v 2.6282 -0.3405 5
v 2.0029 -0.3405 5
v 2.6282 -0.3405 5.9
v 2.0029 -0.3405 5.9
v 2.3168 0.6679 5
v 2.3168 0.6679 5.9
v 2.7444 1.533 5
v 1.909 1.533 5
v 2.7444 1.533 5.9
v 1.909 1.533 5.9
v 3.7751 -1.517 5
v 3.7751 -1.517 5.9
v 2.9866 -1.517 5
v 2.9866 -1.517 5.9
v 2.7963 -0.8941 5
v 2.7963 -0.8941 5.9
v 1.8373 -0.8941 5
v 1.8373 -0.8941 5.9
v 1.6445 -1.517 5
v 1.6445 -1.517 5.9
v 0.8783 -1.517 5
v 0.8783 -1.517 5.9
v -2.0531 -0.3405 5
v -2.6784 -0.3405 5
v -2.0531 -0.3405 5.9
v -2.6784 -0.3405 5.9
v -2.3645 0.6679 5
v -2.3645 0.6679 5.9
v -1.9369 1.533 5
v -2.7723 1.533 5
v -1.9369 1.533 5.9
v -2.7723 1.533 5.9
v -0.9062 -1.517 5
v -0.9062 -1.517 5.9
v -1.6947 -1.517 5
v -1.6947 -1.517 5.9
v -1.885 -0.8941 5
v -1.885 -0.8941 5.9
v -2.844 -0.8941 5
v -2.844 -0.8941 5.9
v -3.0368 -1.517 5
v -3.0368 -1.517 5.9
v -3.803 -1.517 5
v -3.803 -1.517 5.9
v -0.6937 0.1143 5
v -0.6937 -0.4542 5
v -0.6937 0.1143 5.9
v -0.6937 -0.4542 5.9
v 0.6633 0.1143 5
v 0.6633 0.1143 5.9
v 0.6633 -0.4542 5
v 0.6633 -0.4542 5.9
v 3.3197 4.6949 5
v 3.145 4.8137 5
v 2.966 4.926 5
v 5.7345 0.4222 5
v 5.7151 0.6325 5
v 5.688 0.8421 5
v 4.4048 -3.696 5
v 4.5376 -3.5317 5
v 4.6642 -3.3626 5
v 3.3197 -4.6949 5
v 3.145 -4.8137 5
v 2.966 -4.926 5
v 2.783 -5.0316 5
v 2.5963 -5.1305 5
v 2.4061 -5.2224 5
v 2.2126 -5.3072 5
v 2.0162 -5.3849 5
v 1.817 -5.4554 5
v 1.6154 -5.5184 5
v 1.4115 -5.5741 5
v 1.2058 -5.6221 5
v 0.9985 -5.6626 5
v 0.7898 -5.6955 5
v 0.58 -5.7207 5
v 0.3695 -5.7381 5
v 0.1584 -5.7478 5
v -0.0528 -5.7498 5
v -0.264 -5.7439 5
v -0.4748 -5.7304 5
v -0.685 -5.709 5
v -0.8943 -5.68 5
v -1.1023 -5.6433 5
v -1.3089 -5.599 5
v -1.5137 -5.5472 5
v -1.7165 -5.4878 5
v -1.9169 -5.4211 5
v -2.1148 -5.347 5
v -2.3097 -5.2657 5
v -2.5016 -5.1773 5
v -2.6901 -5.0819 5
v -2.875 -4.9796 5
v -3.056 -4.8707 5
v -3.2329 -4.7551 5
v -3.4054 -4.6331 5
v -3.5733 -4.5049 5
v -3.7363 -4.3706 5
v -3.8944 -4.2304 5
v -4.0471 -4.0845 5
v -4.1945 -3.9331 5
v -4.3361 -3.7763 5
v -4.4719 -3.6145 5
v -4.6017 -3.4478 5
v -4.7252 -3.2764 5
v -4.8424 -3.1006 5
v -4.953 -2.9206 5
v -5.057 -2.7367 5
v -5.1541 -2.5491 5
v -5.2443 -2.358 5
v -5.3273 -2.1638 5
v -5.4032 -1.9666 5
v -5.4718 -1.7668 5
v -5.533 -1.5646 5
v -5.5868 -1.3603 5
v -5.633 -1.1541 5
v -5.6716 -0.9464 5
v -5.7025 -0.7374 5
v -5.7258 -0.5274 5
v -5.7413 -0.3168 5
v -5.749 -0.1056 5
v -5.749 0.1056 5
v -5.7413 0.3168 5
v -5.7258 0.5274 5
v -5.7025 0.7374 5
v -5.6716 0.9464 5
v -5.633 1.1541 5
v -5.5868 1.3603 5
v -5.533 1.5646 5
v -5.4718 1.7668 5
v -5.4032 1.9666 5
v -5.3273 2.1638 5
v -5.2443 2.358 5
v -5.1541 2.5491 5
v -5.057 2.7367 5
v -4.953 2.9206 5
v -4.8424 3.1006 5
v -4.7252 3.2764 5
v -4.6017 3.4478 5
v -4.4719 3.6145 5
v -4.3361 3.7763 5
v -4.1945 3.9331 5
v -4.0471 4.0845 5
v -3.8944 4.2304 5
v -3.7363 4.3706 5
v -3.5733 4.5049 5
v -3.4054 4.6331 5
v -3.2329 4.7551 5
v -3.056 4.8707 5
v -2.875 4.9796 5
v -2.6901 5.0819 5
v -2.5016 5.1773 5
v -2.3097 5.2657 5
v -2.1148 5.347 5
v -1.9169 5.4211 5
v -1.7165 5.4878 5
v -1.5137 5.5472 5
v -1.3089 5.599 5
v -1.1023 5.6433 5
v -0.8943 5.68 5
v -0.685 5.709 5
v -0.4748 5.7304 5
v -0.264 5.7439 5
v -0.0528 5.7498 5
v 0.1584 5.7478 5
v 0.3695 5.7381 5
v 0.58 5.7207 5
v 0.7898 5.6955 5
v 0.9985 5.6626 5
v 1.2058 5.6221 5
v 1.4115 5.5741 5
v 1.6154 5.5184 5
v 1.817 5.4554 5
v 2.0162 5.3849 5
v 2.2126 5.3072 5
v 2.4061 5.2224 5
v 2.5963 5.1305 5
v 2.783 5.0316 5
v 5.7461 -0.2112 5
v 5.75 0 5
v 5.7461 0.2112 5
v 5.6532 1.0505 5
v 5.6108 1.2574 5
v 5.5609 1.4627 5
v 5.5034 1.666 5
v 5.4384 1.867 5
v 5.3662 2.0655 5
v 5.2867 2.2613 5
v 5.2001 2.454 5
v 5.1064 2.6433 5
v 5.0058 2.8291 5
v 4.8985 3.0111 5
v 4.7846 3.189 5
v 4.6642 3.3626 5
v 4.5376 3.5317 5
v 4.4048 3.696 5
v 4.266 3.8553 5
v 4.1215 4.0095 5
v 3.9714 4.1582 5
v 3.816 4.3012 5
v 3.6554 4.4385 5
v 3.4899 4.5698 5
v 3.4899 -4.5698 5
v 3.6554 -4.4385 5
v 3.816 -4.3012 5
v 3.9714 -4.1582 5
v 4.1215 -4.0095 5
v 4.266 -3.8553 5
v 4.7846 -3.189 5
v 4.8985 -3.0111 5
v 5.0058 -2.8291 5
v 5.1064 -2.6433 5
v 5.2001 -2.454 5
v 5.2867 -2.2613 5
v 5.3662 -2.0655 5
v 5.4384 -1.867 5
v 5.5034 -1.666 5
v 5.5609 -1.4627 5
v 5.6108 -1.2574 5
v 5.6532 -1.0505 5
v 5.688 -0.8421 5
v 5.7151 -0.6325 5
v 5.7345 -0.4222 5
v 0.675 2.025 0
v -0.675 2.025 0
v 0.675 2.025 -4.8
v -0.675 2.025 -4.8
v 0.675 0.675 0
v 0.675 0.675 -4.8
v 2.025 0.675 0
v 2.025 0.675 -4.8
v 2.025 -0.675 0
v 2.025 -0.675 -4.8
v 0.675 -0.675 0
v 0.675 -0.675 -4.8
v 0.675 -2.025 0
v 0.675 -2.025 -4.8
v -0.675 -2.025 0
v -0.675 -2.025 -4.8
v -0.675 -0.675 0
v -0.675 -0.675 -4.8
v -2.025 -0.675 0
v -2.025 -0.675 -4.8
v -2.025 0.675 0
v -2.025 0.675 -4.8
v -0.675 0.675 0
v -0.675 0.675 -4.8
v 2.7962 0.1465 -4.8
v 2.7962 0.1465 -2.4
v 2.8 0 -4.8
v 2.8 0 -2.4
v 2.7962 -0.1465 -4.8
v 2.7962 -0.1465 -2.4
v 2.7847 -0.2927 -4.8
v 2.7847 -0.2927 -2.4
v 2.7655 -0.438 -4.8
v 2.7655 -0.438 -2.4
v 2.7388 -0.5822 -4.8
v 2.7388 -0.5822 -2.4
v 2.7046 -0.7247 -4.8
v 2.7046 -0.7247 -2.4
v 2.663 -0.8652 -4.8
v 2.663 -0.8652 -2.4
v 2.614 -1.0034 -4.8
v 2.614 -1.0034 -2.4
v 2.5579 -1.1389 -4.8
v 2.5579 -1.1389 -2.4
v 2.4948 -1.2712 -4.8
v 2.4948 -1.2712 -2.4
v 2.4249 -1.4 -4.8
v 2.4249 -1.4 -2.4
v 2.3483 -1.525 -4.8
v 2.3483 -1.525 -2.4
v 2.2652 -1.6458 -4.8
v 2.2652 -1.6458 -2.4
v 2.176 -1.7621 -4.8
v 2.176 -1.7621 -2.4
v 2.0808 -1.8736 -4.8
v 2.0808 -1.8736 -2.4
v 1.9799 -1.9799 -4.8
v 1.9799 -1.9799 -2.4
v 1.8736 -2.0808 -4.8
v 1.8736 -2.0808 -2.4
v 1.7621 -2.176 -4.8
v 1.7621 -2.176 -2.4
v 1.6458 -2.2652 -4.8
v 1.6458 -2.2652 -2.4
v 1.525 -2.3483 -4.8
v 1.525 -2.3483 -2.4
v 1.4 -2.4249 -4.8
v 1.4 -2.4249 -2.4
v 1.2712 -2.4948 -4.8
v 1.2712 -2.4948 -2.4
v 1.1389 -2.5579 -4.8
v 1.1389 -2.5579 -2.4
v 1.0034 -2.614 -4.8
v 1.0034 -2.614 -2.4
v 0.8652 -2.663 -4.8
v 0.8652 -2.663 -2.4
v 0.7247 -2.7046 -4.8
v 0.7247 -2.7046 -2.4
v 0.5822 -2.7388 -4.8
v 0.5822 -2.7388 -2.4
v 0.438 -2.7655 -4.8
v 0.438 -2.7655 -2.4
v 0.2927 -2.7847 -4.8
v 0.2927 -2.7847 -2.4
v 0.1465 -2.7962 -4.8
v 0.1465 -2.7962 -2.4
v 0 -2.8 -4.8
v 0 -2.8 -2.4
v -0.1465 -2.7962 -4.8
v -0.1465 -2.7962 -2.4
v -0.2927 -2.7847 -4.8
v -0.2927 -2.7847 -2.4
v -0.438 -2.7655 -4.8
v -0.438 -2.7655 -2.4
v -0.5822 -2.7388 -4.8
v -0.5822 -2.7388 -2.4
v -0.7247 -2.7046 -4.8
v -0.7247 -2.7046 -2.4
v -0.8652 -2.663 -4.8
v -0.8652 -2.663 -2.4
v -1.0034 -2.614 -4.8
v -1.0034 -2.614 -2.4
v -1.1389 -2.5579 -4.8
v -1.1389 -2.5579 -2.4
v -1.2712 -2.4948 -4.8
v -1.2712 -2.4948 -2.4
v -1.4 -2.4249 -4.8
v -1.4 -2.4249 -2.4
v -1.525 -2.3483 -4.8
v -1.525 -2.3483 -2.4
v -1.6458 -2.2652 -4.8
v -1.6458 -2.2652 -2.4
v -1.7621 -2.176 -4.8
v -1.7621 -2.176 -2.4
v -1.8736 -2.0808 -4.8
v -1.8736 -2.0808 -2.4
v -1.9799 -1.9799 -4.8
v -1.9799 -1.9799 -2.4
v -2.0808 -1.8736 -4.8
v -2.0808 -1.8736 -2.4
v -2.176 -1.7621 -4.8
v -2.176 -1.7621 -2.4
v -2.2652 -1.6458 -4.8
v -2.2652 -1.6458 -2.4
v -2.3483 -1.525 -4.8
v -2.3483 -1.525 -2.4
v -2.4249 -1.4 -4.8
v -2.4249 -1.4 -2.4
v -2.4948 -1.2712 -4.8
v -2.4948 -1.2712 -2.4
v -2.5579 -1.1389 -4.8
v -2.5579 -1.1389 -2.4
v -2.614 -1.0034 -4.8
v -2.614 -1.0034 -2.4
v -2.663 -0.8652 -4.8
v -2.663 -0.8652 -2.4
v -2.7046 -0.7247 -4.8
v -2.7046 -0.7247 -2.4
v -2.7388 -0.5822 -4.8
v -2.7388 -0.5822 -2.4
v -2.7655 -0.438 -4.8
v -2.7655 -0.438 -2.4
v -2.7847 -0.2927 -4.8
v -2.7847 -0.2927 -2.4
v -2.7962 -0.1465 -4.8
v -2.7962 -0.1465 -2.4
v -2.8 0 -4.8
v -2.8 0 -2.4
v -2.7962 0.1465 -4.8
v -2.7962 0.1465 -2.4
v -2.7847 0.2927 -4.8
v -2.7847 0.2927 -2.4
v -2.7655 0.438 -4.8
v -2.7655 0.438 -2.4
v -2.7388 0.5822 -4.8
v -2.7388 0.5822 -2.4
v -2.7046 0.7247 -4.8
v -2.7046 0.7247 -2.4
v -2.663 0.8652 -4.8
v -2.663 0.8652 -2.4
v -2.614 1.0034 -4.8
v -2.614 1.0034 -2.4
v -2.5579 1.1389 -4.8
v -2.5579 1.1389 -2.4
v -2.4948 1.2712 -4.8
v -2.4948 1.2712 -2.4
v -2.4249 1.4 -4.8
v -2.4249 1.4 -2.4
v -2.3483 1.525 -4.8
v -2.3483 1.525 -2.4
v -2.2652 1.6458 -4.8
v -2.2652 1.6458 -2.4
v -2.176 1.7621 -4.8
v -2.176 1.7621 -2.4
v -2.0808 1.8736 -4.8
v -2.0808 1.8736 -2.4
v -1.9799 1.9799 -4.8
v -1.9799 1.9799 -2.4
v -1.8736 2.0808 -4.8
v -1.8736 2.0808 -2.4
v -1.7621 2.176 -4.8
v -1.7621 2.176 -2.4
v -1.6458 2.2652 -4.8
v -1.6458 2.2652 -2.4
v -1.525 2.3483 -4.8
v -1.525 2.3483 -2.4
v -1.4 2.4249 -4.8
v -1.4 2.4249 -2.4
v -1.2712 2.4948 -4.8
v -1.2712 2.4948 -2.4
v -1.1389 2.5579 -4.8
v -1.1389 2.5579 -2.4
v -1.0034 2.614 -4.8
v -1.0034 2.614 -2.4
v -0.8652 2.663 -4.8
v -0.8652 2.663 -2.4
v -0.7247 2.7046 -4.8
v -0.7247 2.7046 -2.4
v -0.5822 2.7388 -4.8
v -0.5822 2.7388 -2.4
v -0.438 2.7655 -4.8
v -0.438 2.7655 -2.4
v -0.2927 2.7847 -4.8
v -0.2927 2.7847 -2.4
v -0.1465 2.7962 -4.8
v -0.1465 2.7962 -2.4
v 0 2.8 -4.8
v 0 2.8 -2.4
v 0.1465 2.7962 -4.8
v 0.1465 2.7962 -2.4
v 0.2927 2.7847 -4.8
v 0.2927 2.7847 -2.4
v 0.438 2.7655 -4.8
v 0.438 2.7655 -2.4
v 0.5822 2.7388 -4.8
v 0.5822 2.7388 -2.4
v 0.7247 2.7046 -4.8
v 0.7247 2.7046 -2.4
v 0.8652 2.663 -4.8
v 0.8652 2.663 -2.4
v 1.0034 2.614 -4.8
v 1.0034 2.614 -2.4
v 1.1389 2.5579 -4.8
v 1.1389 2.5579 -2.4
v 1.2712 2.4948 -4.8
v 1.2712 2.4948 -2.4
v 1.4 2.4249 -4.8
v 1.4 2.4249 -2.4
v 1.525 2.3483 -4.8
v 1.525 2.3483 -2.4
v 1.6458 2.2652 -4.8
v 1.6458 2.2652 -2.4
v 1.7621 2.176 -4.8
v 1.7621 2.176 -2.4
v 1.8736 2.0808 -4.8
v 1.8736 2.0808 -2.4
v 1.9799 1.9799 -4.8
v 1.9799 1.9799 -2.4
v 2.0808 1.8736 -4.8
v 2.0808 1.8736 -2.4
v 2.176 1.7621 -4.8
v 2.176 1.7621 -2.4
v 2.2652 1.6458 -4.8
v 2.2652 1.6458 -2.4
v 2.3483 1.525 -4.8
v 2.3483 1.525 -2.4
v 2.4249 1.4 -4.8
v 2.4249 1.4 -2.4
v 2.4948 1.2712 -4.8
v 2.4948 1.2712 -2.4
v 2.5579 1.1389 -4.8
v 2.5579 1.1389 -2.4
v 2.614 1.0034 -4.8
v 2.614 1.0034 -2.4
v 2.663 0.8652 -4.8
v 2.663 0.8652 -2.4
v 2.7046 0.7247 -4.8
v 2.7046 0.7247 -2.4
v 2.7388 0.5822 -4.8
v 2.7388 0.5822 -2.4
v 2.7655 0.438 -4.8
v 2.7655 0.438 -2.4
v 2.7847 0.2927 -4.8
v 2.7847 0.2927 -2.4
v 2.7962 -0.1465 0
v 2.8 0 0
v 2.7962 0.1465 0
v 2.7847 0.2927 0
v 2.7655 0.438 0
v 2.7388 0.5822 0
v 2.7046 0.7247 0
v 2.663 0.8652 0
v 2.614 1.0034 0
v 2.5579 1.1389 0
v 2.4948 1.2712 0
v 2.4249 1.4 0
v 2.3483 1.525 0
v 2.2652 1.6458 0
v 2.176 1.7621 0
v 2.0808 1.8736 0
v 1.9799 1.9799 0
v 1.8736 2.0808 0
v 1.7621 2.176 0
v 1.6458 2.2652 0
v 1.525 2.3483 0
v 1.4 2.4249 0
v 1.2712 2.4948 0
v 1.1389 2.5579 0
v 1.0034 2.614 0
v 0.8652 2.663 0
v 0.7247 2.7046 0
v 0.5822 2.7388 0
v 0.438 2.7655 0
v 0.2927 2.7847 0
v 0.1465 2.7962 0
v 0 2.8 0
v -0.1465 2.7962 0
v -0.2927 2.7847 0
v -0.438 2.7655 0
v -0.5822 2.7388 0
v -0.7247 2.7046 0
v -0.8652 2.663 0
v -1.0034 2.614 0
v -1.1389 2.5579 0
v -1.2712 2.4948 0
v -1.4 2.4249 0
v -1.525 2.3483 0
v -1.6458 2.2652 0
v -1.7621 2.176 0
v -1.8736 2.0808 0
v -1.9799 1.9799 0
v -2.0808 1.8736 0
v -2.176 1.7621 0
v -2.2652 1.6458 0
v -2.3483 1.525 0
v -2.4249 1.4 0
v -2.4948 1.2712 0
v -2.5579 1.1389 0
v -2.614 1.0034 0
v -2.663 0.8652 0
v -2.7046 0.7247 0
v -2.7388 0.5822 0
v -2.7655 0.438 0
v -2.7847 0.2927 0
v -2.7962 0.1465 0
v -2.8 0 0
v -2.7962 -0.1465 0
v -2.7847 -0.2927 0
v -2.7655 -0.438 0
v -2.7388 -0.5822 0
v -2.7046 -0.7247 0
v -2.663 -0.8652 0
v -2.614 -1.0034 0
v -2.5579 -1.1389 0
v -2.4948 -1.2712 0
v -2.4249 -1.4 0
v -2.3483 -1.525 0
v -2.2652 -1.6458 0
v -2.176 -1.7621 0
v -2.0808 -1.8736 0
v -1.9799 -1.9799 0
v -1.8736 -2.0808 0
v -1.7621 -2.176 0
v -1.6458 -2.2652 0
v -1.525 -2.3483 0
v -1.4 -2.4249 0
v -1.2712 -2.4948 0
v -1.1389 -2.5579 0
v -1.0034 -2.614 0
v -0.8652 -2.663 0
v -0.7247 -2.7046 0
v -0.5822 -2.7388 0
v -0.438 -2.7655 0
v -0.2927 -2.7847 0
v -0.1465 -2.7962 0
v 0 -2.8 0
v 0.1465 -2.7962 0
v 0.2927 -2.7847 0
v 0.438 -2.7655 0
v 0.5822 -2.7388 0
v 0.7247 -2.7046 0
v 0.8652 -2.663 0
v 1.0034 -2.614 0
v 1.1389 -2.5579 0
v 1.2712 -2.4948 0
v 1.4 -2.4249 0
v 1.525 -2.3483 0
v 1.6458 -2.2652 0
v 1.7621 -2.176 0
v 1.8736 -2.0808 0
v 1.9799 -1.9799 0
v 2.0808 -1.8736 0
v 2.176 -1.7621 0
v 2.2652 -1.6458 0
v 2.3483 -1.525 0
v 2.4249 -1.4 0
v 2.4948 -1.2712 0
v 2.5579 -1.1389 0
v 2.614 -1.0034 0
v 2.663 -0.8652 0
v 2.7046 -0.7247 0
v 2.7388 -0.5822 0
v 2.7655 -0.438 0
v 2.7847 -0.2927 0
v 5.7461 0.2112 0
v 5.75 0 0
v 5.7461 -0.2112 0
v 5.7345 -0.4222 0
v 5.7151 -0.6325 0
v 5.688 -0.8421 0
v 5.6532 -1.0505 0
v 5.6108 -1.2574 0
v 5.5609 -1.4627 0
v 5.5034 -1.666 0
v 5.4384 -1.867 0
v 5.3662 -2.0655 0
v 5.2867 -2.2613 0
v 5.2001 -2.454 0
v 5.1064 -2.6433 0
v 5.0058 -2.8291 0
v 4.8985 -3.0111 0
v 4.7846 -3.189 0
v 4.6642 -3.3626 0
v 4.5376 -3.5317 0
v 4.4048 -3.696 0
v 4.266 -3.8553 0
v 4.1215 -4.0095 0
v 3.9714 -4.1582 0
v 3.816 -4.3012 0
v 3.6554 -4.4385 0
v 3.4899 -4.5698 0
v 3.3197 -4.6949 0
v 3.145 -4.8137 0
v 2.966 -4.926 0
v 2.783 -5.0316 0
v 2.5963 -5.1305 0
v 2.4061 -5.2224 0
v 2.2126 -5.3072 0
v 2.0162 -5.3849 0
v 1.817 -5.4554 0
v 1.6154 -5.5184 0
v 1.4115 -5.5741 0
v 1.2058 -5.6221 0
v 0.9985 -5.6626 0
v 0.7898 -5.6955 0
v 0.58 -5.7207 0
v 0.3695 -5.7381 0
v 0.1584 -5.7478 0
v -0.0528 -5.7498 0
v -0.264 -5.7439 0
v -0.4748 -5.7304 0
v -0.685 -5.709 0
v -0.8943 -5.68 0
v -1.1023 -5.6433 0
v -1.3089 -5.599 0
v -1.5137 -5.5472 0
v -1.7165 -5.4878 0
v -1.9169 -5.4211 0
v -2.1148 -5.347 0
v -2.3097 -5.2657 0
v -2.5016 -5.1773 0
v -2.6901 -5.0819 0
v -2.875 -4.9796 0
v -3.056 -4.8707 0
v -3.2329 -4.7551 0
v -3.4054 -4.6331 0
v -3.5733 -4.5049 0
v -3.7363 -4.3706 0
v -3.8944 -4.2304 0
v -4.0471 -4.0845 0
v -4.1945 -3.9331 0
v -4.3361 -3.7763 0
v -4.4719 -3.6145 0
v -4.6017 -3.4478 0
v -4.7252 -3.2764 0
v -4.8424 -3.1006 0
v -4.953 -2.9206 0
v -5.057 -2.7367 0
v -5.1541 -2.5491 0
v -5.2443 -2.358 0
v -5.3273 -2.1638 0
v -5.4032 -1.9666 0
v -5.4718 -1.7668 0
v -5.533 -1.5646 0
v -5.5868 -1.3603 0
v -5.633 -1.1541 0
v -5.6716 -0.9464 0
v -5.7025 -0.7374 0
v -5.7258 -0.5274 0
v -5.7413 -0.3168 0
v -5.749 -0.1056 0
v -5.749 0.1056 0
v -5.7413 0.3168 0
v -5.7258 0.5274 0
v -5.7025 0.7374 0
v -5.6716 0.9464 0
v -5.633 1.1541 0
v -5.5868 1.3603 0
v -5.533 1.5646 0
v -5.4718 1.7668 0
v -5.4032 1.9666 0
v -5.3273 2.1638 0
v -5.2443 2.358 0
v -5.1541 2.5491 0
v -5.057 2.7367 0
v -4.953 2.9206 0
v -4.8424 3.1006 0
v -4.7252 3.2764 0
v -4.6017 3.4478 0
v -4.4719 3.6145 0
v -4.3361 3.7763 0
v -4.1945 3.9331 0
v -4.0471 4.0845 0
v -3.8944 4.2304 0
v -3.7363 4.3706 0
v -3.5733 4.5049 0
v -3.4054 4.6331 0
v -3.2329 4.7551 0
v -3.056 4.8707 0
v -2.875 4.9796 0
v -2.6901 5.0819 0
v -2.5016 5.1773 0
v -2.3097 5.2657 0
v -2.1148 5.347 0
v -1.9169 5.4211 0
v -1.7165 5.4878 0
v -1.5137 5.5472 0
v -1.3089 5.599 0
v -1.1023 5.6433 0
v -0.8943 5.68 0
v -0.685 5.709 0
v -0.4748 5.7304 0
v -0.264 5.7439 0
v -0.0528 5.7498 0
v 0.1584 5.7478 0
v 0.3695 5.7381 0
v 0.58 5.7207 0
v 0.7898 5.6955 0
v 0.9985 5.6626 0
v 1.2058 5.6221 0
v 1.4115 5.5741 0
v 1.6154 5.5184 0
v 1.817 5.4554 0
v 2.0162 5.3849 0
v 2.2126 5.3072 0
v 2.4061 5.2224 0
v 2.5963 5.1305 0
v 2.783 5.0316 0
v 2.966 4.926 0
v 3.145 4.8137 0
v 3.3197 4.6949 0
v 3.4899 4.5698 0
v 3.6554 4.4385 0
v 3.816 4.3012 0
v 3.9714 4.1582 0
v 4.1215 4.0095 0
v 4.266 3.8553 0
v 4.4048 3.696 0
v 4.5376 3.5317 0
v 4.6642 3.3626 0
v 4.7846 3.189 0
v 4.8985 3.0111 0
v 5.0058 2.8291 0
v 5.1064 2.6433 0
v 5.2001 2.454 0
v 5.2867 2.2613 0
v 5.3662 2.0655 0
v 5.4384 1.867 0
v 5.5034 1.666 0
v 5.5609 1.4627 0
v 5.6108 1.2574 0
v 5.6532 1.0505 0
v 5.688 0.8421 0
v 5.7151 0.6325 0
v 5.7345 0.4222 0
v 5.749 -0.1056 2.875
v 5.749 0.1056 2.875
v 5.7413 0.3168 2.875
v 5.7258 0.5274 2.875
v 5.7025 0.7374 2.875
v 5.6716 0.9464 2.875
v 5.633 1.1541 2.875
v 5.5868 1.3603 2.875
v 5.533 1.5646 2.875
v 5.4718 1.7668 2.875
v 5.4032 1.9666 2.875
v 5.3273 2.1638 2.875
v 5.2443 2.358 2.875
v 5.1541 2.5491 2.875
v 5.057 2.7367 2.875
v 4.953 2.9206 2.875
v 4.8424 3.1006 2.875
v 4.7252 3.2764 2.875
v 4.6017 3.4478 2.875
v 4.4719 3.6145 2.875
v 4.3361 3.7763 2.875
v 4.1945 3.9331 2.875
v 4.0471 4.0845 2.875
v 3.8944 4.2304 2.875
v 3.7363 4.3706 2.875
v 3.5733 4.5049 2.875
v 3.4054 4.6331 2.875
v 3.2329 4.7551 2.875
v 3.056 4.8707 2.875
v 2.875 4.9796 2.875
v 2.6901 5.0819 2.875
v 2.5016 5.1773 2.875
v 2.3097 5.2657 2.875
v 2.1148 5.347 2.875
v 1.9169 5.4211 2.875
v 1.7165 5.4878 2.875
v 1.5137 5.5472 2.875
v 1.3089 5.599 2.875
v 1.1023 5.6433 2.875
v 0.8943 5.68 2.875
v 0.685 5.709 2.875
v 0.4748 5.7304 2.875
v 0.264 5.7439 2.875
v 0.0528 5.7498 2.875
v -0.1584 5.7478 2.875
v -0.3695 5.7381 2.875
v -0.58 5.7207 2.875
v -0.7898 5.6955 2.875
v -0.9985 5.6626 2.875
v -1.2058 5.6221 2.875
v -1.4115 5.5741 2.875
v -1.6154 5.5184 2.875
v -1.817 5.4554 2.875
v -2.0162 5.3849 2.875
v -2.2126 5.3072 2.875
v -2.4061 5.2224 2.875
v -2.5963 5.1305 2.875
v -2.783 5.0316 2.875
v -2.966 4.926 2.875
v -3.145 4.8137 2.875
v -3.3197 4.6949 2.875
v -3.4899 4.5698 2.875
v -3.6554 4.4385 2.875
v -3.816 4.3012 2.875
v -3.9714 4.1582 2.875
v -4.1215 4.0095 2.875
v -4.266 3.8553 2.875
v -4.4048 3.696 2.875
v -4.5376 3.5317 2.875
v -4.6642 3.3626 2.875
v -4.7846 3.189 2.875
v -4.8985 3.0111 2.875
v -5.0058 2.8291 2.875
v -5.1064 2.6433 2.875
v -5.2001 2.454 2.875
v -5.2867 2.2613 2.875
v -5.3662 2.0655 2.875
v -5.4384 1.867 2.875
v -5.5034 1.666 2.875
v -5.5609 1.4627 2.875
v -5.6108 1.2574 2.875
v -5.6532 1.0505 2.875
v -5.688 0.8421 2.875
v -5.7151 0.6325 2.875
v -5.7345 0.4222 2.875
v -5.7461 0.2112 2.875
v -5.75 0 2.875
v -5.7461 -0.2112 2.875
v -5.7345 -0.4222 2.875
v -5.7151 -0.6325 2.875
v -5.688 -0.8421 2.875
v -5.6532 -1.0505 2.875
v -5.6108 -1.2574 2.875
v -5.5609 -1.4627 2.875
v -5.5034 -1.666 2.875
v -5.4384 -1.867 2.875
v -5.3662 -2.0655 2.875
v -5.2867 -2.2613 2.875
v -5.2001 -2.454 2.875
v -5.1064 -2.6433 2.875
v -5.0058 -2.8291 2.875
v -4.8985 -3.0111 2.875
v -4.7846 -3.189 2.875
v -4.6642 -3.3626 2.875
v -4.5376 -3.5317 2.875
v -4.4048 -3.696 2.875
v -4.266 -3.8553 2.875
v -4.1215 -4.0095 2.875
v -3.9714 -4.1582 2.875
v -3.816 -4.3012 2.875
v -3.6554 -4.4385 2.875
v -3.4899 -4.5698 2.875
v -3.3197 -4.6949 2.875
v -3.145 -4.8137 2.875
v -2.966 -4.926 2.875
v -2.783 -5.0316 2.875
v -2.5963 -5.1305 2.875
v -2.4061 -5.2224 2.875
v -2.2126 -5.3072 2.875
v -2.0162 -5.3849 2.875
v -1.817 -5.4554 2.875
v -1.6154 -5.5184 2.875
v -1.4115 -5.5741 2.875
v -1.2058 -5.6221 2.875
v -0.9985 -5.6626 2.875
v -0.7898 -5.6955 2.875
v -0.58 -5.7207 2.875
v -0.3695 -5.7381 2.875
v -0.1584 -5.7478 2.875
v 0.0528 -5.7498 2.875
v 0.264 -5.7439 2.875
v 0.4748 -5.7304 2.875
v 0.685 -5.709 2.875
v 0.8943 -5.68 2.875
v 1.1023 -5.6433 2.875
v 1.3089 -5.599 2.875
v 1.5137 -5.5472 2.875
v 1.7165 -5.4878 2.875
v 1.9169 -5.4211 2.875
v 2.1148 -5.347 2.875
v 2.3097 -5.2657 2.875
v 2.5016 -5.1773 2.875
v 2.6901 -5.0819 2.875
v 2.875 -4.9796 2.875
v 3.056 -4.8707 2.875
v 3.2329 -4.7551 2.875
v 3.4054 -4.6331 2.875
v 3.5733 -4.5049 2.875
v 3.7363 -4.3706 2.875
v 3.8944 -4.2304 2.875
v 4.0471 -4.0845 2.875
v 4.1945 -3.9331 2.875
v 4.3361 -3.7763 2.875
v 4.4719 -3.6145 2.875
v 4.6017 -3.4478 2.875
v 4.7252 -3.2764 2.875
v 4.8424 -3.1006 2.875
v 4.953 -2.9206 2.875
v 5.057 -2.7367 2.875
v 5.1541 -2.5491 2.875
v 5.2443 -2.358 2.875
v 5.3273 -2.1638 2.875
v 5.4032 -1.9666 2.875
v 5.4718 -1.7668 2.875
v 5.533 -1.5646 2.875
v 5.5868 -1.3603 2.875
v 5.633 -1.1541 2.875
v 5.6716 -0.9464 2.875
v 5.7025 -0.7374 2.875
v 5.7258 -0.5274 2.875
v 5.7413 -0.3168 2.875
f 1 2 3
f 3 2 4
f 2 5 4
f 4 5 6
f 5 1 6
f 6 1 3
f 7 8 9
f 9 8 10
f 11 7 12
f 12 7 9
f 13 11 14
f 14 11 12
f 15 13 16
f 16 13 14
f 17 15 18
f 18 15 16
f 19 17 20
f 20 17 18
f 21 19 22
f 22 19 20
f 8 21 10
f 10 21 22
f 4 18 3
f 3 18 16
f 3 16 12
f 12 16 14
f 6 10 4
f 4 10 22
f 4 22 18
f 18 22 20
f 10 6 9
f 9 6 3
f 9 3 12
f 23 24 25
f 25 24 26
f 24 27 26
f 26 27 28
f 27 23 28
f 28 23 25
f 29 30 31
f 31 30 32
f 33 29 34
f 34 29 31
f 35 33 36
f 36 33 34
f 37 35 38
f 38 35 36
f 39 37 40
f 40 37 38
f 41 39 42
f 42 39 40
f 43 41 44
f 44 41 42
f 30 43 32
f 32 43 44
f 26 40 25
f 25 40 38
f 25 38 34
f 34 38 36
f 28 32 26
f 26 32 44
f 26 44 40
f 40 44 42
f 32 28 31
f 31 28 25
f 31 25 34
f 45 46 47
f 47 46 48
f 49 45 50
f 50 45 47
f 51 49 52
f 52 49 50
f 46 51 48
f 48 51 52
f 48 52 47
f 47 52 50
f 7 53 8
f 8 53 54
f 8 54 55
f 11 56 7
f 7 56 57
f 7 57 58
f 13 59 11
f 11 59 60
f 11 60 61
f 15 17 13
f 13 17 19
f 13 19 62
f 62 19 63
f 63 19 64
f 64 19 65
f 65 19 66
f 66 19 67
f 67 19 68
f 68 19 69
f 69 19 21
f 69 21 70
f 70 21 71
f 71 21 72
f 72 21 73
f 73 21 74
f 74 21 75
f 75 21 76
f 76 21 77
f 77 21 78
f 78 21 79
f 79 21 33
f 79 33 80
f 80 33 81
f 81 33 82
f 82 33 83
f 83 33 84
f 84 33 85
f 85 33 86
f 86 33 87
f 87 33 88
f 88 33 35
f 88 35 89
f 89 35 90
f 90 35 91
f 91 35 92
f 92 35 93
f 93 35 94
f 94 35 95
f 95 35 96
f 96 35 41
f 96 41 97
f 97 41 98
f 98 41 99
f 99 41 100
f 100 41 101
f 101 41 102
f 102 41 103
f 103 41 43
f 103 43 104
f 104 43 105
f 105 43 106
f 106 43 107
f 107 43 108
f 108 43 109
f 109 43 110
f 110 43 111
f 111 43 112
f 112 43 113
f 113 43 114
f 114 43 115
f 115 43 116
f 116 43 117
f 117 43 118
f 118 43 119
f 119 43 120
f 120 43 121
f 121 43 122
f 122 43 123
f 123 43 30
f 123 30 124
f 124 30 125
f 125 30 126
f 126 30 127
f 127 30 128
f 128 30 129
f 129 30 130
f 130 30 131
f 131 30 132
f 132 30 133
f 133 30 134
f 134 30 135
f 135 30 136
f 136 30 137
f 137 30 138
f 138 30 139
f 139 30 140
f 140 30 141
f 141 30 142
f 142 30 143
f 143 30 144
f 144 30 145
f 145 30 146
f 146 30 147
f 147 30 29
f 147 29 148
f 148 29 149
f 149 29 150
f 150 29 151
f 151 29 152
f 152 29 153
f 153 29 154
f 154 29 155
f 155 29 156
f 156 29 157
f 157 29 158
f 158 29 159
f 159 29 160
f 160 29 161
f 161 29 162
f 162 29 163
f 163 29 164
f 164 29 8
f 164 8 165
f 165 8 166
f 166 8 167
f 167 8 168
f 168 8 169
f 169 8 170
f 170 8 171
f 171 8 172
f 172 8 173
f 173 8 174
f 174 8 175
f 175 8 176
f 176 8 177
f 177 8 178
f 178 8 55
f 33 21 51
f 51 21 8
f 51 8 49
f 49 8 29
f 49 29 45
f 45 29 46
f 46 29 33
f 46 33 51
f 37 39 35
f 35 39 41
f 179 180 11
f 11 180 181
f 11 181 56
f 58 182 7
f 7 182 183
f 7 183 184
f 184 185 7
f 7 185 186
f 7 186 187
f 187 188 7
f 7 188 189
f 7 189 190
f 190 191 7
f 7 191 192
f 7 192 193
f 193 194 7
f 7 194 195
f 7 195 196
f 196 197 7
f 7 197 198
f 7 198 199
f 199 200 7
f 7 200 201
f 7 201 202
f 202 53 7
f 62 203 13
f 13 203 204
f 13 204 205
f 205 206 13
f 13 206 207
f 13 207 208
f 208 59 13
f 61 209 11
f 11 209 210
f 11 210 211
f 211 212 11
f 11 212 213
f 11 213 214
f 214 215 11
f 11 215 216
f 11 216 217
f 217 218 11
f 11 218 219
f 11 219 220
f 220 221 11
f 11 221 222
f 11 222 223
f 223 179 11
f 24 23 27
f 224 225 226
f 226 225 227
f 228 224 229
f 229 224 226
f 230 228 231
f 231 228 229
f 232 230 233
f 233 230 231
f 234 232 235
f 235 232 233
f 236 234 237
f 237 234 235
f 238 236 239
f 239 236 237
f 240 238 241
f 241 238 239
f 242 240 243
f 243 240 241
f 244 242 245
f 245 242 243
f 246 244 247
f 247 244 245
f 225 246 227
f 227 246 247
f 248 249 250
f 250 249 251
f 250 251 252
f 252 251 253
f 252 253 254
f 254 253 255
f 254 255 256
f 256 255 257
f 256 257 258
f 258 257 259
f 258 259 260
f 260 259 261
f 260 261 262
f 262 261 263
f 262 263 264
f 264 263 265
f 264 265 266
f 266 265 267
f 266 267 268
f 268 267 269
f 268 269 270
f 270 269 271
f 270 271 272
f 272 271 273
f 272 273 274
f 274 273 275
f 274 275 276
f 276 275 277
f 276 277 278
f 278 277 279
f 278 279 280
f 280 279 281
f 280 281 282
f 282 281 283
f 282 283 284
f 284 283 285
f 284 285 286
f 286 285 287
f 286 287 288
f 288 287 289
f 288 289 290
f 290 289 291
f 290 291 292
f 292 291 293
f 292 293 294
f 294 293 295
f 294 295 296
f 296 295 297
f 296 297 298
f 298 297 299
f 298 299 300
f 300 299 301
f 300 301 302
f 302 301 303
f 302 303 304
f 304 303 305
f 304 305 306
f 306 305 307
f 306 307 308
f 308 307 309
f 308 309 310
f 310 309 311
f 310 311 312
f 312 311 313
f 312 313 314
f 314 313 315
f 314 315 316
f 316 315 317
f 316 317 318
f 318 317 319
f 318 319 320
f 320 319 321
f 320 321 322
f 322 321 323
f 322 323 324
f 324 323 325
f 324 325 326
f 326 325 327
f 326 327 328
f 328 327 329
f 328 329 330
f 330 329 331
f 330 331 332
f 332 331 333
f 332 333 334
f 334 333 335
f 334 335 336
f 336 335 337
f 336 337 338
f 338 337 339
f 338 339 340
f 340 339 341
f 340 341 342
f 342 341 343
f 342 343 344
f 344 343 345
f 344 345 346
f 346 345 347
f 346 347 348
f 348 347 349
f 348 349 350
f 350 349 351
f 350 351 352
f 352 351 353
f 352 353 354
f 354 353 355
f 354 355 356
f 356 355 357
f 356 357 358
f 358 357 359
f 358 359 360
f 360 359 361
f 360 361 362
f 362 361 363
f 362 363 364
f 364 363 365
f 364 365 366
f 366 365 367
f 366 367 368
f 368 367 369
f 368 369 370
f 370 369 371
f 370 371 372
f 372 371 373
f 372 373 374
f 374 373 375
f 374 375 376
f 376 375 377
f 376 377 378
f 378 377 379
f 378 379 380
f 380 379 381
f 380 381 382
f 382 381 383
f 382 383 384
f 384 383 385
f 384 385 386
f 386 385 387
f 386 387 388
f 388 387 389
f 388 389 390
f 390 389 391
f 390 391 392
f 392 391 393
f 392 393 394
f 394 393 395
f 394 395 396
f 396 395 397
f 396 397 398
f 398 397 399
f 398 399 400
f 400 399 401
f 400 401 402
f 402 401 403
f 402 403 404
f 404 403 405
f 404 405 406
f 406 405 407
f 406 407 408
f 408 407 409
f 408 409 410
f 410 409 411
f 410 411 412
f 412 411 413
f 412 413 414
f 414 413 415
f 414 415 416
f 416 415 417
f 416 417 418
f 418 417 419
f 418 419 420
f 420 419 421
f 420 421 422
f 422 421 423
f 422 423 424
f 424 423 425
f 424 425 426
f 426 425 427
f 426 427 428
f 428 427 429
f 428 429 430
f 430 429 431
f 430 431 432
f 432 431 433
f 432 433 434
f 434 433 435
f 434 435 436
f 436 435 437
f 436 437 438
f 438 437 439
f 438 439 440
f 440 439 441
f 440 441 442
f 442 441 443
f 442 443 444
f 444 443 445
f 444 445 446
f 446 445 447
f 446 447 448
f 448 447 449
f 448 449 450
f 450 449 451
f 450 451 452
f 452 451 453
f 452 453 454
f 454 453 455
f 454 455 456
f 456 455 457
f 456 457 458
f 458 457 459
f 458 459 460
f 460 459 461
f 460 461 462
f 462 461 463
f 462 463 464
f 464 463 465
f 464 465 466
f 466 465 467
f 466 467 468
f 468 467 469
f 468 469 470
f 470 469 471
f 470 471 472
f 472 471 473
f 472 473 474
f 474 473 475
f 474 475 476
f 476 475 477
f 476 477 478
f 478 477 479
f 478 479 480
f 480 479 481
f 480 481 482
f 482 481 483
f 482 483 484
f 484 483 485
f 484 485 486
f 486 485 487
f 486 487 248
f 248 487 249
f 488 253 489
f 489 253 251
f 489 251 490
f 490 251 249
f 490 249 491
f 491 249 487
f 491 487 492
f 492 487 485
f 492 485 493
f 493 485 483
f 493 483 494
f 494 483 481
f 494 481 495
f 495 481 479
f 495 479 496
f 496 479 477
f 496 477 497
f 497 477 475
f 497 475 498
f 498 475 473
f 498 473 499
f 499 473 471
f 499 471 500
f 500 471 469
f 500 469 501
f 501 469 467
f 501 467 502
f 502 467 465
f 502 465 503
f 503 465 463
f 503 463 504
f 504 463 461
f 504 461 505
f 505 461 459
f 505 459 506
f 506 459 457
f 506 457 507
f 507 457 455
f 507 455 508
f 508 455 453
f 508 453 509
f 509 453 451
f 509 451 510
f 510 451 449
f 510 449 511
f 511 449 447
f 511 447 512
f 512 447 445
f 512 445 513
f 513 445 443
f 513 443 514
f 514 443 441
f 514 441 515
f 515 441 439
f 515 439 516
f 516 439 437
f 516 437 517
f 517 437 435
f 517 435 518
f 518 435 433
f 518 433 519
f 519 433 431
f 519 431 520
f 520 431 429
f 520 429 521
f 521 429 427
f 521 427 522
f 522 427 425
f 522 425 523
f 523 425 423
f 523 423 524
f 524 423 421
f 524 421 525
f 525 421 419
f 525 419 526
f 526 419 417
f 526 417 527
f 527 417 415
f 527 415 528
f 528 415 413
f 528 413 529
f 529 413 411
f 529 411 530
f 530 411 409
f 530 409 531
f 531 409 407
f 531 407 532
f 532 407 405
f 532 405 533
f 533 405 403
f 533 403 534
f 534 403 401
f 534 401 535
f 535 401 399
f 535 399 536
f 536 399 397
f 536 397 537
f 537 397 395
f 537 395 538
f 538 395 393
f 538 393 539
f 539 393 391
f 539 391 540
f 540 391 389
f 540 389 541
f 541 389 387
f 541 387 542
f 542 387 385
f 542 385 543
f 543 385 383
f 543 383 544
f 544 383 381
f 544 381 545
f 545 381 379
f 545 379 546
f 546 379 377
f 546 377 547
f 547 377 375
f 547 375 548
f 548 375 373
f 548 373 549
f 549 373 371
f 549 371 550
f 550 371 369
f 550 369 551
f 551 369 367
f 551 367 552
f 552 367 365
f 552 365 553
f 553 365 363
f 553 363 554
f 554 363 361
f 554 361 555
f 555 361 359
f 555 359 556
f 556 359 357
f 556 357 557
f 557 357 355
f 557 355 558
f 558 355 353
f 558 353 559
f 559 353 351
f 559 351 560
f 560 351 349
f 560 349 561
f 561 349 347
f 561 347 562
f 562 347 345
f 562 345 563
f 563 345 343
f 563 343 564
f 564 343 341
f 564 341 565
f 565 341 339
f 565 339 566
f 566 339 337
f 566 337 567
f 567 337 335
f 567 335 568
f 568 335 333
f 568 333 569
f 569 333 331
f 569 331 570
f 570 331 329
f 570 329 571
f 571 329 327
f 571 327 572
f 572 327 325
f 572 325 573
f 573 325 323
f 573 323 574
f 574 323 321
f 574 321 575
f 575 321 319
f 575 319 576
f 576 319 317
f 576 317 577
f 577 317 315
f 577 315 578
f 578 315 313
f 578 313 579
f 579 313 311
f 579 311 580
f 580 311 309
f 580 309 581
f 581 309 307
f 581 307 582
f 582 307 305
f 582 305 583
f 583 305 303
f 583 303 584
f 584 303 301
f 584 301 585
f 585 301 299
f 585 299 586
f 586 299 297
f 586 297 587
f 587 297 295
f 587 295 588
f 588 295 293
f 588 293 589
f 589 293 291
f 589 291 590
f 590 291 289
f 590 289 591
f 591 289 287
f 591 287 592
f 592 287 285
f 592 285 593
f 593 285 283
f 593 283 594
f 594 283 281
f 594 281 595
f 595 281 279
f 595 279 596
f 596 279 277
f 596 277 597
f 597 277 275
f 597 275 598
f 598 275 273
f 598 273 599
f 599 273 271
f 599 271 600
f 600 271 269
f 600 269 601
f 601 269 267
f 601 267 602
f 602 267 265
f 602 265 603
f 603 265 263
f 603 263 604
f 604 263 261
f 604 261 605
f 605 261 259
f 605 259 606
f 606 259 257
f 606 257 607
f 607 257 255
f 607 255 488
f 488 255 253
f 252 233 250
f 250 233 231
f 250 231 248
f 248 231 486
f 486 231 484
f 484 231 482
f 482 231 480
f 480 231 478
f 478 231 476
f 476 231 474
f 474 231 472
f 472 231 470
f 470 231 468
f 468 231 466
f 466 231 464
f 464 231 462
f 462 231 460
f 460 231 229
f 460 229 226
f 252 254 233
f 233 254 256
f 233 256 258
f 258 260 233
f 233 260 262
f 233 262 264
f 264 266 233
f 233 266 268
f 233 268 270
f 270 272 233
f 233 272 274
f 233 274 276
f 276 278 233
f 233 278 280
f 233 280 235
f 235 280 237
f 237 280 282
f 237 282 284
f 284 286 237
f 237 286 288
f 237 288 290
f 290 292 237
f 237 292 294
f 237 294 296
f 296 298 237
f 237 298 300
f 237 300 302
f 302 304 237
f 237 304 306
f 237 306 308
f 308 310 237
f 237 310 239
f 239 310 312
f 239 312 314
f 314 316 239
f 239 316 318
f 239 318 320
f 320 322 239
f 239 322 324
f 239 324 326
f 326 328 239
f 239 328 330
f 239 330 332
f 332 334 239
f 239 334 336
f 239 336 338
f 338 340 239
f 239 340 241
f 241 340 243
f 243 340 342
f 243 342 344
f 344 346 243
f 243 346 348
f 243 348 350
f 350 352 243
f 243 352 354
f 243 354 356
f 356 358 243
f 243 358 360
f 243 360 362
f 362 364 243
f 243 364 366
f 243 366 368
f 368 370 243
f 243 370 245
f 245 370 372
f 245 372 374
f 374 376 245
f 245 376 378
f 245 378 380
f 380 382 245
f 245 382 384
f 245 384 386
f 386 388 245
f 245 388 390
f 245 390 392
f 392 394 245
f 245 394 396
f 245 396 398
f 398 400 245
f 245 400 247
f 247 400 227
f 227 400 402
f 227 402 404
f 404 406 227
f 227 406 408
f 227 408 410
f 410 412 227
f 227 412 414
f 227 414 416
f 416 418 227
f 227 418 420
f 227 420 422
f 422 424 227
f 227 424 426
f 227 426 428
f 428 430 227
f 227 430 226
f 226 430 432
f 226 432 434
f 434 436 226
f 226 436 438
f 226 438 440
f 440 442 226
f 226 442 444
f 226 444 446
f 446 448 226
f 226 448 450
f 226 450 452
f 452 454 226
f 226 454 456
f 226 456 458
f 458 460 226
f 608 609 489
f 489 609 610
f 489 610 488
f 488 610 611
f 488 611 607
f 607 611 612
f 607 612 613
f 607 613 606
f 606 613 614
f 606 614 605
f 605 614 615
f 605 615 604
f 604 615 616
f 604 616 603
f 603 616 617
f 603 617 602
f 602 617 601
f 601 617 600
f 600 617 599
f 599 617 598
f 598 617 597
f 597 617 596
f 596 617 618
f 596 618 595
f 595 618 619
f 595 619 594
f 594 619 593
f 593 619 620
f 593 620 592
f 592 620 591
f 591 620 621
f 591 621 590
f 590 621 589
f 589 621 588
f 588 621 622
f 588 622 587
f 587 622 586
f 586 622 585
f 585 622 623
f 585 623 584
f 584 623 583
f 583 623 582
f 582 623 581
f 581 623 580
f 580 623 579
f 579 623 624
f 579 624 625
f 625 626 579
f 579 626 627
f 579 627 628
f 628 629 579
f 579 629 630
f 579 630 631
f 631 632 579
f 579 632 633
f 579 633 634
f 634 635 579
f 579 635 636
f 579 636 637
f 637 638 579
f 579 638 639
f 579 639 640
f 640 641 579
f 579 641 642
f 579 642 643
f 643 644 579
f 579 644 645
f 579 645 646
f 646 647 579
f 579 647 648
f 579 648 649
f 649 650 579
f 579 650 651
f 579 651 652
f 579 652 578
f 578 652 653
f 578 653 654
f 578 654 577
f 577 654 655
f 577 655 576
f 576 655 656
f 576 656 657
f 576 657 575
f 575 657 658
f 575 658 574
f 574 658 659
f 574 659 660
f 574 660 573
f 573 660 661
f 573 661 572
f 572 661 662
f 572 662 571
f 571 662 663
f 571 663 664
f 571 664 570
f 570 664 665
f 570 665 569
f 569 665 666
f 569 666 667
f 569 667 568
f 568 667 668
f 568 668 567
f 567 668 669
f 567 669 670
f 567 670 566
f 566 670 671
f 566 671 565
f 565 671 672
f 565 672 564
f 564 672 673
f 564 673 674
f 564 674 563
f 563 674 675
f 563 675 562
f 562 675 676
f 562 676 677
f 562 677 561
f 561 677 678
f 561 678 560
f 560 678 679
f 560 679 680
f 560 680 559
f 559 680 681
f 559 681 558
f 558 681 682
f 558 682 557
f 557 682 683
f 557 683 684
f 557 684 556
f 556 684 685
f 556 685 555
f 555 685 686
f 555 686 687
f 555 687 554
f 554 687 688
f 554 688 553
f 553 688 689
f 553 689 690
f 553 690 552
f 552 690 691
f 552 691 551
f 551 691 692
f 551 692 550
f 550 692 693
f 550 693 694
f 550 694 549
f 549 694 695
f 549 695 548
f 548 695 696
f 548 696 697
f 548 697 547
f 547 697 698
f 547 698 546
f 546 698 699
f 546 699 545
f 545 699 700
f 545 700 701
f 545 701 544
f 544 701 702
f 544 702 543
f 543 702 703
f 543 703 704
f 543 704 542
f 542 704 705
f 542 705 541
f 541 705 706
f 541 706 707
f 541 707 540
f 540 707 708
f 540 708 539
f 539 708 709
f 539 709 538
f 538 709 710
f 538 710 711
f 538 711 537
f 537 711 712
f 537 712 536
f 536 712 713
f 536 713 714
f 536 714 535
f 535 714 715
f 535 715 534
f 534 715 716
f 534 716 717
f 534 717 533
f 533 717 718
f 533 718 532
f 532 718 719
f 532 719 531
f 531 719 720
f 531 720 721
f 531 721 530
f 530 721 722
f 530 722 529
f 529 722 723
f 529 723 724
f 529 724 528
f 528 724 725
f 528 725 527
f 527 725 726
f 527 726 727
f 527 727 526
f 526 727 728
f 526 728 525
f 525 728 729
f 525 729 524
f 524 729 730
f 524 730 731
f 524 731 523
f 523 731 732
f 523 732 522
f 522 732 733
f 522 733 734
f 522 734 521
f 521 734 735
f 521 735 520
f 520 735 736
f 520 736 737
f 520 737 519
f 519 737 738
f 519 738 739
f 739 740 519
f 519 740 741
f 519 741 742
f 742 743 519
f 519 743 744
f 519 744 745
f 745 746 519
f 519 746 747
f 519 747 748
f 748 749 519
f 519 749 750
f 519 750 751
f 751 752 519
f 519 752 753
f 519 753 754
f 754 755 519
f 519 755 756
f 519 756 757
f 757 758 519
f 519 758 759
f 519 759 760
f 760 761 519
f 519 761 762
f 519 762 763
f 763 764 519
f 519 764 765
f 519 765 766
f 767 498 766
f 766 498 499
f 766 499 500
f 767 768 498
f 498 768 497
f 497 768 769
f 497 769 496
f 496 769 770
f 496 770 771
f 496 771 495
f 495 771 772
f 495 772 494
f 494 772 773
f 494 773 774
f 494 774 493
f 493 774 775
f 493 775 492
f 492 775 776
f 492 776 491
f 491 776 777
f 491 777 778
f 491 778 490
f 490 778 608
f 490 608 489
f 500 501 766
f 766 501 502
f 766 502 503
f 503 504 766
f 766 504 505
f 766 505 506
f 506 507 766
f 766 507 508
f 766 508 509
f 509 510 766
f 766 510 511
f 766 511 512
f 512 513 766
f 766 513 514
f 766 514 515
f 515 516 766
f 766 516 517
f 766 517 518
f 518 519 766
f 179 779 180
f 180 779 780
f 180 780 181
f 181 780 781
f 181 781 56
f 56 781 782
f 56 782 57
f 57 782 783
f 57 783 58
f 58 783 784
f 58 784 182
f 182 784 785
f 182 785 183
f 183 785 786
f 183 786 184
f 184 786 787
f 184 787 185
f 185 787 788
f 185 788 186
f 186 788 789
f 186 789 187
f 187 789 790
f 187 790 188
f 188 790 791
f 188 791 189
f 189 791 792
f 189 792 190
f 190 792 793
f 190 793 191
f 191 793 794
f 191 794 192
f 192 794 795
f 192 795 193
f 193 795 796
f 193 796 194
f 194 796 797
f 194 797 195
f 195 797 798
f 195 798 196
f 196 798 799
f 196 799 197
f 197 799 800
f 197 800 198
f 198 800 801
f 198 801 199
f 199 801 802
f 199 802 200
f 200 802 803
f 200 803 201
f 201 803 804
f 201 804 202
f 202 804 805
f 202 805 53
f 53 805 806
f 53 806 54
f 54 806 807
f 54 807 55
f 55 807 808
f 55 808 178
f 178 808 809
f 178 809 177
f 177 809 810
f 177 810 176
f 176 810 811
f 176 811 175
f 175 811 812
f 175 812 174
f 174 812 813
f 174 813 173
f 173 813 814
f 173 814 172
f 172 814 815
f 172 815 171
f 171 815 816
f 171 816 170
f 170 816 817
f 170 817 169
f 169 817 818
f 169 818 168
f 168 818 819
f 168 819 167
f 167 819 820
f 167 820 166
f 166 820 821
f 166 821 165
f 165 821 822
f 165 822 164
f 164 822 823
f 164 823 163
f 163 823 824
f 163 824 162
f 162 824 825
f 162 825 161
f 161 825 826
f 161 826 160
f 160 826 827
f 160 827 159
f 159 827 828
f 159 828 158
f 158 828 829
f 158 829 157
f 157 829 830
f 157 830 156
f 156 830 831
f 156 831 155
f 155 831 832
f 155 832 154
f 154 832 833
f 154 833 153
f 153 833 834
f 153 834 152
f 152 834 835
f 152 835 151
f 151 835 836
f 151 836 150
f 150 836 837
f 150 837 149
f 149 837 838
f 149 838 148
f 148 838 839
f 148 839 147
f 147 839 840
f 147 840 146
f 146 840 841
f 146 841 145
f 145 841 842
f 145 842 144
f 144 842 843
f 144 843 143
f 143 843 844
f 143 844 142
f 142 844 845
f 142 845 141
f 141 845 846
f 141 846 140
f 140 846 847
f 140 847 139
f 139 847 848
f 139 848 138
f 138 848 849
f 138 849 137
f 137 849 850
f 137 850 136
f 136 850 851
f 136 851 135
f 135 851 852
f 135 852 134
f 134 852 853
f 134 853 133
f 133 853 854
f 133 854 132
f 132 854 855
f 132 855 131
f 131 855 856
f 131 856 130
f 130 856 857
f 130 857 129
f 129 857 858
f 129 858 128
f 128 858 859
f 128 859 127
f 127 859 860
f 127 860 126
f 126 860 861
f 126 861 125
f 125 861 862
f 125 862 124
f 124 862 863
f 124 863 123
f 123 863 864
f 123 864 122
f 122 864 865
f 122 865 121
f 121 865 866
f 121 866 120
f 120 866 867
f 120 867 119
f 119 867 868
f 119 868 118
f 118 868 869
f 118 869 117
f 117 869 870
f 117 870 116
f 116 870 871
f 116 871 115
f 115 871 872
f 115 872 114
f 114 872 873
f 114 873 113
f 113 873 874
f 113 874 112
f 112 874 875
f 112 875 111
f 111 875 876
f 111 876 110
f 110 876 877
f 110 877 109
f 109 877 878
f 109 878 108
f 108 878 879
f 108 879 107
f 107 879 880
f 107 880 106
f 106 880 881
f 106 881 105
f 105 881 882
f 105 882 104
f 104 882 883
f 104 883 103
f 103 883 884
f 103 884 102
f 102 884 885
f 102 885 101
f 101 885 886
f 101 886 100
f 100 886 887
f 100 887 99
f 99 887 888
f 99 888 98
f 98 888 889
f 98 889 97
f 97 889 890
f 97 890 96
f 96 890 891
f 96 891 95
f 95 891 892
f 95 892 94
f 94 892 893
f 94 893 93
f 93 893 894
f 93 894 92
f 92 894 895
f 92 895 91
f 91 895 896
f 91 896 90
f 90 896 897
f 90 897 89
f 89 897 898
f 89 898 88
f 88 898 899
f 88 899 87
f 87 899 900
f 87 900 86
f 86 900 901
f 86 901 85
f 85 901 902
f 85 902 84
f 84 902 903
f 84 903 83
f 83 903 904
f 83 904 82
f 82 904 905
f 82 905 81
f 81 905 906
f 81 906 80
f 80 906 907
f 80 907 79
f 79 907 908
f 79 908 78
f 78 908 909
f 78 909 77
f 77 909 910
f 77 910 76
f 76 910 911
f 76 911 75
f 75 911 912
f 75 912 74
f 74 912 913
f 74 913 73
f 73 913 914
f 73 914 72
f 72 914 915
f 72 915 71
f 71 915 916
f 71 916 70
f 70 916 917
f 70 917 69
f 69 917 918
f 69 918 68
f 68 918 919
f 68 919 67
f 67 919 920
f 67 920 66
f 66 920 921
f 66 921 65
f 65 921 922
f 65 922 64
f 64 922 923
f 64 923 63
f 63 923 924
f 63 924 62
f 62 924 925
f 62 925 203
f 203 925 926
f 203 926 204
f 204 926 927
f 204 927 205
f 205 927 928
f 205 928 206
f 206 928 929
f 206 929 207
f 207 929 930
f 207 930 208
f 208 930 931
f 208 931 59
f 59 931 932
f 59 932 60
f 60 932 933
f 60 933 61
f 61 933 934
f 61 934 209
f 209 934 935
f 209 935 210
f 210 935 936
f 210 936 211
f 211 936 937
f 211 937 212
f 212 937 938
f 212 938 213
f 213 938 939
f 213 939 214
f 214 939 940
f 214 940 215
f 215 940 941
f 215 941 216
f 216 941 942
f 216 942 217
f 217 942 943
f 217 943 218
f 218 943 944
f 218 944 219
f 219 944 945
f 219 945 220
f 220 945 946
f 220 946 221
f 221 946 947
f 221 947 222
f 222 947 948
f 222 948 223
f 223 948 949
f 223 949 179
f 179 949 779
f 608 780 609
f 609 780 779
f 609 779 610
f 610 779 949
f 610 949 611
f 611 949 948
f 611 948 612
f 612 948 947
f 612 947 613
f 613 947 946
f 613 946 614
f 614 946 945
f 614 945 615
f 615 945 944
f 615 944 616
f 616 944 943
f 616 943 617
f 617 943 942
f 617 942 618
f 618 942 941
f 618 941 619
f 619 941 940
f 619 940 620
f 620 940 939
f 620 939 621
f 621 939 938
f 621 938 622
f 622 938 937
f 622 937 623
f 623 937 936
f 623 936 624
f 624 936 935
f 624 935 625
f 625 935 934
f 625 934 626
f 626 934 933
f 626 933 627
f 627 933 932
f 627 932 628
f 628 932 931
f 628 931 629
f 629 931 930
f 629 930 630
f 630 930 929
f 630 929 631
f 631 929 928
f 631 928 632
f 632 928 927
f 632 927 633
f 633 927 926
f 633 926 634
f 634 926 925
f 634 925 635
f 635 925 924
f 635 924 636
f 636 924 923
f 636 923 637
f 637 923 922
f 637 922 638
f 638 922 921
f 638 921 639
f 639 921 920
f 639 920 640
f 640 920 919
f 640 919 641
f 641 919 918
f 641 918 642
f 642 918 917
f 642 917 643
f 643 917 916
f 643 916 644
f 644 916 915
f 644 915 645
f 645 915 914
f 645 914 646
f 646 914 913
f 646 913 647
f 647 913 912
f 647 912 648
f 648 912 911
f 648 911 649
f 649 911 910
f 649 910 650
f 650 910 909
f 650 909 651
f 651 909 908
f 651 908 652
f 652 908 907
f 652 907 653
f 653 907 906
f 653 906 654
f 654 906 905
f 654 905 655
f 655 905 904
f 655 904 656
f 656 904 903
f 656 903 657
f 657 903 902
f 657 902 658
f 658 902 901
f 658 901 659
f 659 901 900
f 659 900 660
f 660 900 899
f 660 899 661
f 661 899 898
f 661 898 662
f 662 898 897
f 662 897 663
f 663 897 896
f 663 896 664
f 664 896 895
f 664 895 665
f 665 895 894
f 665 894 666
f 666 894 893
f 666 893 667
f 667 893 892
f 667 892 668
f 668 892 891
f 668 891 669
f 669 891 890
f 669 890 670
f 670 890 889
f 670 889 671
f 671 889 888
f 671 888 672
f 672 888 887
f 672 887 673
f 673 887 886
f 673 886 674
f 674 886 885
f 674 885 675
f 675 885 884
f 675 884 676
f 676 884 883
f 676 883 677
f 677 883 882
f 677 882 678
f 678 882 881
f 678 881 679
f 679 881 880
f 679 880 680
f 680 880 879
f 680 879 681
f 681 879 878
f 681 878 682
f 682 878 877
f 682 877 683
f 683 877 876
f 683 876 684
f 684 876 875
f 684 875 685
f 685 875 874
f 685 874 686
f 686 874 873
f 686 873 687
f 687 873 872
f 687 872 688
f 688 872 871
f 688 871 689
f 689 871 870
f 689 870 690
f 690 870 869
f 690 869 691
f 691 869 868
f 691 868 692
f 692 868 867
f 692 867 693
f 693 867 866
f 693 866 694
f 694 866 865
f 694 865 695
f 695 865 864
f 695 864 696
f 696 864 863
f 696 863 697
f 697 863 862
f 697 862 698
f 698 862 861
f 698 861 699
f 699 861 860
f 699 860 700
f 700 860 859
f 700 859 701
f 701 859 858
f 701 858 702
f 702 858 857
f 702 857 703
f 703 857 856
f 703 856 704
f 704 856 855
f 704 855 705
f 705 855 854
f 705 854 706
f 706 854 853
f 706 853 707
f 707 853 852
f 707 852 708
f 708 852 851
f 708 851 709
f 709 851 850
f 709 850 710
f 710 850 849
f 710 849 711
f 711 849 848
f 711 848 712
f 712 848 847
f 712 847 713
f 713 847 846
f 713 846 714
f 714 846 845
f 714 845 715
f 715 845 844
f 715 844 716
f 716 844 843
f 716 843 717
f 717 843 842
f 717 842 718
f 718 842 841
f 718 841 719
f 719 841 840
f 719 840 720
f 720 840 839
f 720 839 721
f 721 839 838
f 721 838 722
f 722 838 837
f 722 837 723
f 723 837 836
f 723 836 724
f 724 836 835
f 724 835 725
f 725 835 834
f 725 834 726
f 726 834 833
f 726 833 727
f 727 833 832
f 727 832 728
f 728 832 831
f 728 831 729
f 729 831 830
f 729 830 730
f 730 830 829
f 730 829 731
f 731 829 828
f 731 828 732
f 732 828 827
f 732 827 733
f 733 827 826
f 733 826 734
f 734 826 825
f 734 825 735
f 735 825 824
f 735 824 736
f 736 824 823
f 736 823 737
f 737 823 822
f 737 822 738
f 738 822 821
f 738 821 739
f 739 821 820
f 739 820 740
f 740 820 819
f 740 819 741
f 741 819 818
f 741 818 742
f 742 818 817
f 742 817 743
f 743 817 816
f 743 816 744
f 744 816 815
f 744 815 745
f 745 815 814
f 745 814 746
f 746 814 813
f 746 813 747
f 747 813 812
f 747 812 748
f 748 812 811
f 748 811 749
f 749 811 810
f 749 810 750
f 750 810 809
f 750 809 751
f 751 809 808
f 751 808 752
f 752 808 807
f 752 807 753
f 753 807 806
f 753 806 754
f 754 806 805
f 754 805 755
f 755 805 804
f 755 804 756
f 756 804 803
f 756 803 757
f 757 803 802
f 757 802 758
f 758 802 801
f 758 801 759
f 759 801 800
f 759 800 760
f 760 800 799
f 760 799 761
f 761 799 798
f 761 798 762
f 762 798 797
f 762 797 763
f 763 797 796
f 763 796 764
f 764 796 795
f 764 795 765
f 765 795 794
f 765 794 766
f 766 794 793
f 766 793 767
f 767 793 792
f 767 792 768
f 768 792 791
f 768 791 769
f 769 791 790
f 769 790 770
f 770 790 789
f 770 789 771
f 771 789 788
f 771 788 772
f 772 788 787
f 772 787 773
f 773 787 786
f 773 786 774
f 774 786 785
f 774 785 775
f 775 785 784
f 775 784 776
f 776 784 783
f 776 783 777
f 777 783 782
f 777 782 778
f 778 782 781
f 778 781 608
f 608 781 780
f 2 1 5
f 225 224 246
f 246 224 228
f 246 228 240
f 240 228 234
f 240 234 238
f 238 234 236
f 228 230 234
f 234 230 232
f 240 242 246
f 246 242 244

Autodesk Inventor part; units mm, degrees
ref_plane "YZ Plane" through (0, 0, 0) normal (1, 0, 0) x (0, 1, 0)
ref_plane "XZ Plane" through (0, 0, 0) normal (0, 1, 0) x (-1, 0, 0)
ref_plane "XY Plane" through (0, 0, 0) normal (0, 0, 1) x (1, 0, 0)
sketch "Sketch1" plane through (0, 0, 0) normal (0, 0, 1) x (1, 0, 0)
  circle A0 centre (0, 0) radius 6.22 construction
  circle A1 centre (0, 0) radius 2.8
  line L0 (-0.675, 0.675) -> (-0.675, 2.025)
  line L1 (-0.675, 2.025) -> (0.675, 2.025)
  line L2 (0.675, 2.025) -> (0.675, 0.675)
  line L3 (0.675, 0.675) -> (2.025, 0.675)
  line L4 (2.025, 0.675) -> (2.025, -0.675)
  line L5 (2.025, -0.675) -> (0.675, -0.675)
  line L6 (0.675, -0.675) -> (0.675, -2.025)
  line L7 (0.675, -2.025) -> (-0.675, -2.025)
  line L8 (-0.675, -2.025) -> (-0.675, -0.675)
  line L9 (-0.675, -0.675) -> (-2.025, -0.675)
  line L10 (-2.025, -0.675) -> (-2.025, 0.675)
  line L11 (-2.025, 0.675) -> (-0.675, 0.675)
  circle A2 centre (0, 0) radius 5.75
  point P0 (-6.07, -6.1)
  dimension "d0" = 12.44
  dimension "d1" = 0.47
extrude "Extrusion1" add sketch "Sketch1" along normal blind 5 contours A1 | L0 L1 L2 L3 L4 L5 L6 L7 L8 L9 L10 L11 | A2
extrude "Extrusion2" add sketch "Sketch1" against normal blind 4.8 contours A1
sketch "Sketch2" plane through (0, 0, 5) normal (0, 0, 1) x (1, 0, 0)
  point P0 (0, 0)
sketch "Sketch3" plane through (0, 0, 5) normal (0, 0, 1) x (1, 0, 0)
  line L0 (-3.7906, 1.533) -> (3.7906, 1.533) construction
  line L1 (3.7906, 1.533) -> (3.7906, -1.533) construction
  line L2 (3.7906, -1.533) -> (-3.7906, -1.533) construction
  line L3 (-3.7906, -1.533) -> (-3.7906, 1.533) construction
  line L4 (-3.803, -1.517) -> (-2.7723, 1.533)
  line L5 (-2.7723, 1.533) -> (-1.9369, 1.533)
  line L6 (-1.9369, 1.533) -> (-0.9062, -1.517)
  line L7 (-0.9062, -1.517) -> (-1.6947, -1.517)
  line L8 (-1.6947, -1.517) -> (-1.885, -0.8941)
  line L9 (-1.885, -0.8941) -> (-2.844, -0.8941)
  line L10 (-2.844, -0.8941) -> (-3.0368, -1.517)
  line L11 (-3.0368, -1.517) -> (-3.803, -1.517)
  line L12 (-2.0531, -0.3405) -> (-2.3645, 0.6679)
  line L13 (-2.3645, 0.6679) -> (-2.6784, -0.3405)
  line L14 (-2.6784, -0.3405) -> (-2.0531, -0.3405)
  line L15 (0.6633, -0.4542) -> (-0.6937, -0.4542)
  line L16 (-0.6937, -0.4542) -> (-0.6937, 0.1143)
  line L17 (-0.6937, 0.1143) -> (0.6633, 0.1143)
  line L18 (0.6633, 0.1143) -> (0.6633, -0.4542)
  line L19 (0.8783, -1.517) -> (1.909, 1.533)
  line L20 (1.909, 1.533) -> (2.7444, 1.533)
  line L21 (2.7444, 1.533) -> (3.7751, -1.517)
  line L22 (3.7751, -1.517) -> (2.9866, -1.517)
  line L23 (2.9866, -1.517) -> (2.7963, -0.8941)
  line L24 (2.7963, -0.8941) -> (1.8373, -0.8941)
  line L25 (1.8373, -0.8941) -> (1.6445, -1.517)
  line L26 (1.6445, -1.517) -> (0.8783, -1.517)
  line L27 (2.6282, -0.3405) -> (2.3168, 0.6679)
  line L28 (2.3168, 0.6679) -> (2.0029, -0.3405)
  line L29 (2.0029, -0.3405) -> (2.6282, -0.3405)
  point P0 (0, -1.533)
  point P1 (3.7906, 0)
  point P2 (0, 0)
  point P3 (0, 0)
extrude "Extrusion6" add sketch "Sketch3" along normal blind 0.9
properties part number "IPC A-A key"
